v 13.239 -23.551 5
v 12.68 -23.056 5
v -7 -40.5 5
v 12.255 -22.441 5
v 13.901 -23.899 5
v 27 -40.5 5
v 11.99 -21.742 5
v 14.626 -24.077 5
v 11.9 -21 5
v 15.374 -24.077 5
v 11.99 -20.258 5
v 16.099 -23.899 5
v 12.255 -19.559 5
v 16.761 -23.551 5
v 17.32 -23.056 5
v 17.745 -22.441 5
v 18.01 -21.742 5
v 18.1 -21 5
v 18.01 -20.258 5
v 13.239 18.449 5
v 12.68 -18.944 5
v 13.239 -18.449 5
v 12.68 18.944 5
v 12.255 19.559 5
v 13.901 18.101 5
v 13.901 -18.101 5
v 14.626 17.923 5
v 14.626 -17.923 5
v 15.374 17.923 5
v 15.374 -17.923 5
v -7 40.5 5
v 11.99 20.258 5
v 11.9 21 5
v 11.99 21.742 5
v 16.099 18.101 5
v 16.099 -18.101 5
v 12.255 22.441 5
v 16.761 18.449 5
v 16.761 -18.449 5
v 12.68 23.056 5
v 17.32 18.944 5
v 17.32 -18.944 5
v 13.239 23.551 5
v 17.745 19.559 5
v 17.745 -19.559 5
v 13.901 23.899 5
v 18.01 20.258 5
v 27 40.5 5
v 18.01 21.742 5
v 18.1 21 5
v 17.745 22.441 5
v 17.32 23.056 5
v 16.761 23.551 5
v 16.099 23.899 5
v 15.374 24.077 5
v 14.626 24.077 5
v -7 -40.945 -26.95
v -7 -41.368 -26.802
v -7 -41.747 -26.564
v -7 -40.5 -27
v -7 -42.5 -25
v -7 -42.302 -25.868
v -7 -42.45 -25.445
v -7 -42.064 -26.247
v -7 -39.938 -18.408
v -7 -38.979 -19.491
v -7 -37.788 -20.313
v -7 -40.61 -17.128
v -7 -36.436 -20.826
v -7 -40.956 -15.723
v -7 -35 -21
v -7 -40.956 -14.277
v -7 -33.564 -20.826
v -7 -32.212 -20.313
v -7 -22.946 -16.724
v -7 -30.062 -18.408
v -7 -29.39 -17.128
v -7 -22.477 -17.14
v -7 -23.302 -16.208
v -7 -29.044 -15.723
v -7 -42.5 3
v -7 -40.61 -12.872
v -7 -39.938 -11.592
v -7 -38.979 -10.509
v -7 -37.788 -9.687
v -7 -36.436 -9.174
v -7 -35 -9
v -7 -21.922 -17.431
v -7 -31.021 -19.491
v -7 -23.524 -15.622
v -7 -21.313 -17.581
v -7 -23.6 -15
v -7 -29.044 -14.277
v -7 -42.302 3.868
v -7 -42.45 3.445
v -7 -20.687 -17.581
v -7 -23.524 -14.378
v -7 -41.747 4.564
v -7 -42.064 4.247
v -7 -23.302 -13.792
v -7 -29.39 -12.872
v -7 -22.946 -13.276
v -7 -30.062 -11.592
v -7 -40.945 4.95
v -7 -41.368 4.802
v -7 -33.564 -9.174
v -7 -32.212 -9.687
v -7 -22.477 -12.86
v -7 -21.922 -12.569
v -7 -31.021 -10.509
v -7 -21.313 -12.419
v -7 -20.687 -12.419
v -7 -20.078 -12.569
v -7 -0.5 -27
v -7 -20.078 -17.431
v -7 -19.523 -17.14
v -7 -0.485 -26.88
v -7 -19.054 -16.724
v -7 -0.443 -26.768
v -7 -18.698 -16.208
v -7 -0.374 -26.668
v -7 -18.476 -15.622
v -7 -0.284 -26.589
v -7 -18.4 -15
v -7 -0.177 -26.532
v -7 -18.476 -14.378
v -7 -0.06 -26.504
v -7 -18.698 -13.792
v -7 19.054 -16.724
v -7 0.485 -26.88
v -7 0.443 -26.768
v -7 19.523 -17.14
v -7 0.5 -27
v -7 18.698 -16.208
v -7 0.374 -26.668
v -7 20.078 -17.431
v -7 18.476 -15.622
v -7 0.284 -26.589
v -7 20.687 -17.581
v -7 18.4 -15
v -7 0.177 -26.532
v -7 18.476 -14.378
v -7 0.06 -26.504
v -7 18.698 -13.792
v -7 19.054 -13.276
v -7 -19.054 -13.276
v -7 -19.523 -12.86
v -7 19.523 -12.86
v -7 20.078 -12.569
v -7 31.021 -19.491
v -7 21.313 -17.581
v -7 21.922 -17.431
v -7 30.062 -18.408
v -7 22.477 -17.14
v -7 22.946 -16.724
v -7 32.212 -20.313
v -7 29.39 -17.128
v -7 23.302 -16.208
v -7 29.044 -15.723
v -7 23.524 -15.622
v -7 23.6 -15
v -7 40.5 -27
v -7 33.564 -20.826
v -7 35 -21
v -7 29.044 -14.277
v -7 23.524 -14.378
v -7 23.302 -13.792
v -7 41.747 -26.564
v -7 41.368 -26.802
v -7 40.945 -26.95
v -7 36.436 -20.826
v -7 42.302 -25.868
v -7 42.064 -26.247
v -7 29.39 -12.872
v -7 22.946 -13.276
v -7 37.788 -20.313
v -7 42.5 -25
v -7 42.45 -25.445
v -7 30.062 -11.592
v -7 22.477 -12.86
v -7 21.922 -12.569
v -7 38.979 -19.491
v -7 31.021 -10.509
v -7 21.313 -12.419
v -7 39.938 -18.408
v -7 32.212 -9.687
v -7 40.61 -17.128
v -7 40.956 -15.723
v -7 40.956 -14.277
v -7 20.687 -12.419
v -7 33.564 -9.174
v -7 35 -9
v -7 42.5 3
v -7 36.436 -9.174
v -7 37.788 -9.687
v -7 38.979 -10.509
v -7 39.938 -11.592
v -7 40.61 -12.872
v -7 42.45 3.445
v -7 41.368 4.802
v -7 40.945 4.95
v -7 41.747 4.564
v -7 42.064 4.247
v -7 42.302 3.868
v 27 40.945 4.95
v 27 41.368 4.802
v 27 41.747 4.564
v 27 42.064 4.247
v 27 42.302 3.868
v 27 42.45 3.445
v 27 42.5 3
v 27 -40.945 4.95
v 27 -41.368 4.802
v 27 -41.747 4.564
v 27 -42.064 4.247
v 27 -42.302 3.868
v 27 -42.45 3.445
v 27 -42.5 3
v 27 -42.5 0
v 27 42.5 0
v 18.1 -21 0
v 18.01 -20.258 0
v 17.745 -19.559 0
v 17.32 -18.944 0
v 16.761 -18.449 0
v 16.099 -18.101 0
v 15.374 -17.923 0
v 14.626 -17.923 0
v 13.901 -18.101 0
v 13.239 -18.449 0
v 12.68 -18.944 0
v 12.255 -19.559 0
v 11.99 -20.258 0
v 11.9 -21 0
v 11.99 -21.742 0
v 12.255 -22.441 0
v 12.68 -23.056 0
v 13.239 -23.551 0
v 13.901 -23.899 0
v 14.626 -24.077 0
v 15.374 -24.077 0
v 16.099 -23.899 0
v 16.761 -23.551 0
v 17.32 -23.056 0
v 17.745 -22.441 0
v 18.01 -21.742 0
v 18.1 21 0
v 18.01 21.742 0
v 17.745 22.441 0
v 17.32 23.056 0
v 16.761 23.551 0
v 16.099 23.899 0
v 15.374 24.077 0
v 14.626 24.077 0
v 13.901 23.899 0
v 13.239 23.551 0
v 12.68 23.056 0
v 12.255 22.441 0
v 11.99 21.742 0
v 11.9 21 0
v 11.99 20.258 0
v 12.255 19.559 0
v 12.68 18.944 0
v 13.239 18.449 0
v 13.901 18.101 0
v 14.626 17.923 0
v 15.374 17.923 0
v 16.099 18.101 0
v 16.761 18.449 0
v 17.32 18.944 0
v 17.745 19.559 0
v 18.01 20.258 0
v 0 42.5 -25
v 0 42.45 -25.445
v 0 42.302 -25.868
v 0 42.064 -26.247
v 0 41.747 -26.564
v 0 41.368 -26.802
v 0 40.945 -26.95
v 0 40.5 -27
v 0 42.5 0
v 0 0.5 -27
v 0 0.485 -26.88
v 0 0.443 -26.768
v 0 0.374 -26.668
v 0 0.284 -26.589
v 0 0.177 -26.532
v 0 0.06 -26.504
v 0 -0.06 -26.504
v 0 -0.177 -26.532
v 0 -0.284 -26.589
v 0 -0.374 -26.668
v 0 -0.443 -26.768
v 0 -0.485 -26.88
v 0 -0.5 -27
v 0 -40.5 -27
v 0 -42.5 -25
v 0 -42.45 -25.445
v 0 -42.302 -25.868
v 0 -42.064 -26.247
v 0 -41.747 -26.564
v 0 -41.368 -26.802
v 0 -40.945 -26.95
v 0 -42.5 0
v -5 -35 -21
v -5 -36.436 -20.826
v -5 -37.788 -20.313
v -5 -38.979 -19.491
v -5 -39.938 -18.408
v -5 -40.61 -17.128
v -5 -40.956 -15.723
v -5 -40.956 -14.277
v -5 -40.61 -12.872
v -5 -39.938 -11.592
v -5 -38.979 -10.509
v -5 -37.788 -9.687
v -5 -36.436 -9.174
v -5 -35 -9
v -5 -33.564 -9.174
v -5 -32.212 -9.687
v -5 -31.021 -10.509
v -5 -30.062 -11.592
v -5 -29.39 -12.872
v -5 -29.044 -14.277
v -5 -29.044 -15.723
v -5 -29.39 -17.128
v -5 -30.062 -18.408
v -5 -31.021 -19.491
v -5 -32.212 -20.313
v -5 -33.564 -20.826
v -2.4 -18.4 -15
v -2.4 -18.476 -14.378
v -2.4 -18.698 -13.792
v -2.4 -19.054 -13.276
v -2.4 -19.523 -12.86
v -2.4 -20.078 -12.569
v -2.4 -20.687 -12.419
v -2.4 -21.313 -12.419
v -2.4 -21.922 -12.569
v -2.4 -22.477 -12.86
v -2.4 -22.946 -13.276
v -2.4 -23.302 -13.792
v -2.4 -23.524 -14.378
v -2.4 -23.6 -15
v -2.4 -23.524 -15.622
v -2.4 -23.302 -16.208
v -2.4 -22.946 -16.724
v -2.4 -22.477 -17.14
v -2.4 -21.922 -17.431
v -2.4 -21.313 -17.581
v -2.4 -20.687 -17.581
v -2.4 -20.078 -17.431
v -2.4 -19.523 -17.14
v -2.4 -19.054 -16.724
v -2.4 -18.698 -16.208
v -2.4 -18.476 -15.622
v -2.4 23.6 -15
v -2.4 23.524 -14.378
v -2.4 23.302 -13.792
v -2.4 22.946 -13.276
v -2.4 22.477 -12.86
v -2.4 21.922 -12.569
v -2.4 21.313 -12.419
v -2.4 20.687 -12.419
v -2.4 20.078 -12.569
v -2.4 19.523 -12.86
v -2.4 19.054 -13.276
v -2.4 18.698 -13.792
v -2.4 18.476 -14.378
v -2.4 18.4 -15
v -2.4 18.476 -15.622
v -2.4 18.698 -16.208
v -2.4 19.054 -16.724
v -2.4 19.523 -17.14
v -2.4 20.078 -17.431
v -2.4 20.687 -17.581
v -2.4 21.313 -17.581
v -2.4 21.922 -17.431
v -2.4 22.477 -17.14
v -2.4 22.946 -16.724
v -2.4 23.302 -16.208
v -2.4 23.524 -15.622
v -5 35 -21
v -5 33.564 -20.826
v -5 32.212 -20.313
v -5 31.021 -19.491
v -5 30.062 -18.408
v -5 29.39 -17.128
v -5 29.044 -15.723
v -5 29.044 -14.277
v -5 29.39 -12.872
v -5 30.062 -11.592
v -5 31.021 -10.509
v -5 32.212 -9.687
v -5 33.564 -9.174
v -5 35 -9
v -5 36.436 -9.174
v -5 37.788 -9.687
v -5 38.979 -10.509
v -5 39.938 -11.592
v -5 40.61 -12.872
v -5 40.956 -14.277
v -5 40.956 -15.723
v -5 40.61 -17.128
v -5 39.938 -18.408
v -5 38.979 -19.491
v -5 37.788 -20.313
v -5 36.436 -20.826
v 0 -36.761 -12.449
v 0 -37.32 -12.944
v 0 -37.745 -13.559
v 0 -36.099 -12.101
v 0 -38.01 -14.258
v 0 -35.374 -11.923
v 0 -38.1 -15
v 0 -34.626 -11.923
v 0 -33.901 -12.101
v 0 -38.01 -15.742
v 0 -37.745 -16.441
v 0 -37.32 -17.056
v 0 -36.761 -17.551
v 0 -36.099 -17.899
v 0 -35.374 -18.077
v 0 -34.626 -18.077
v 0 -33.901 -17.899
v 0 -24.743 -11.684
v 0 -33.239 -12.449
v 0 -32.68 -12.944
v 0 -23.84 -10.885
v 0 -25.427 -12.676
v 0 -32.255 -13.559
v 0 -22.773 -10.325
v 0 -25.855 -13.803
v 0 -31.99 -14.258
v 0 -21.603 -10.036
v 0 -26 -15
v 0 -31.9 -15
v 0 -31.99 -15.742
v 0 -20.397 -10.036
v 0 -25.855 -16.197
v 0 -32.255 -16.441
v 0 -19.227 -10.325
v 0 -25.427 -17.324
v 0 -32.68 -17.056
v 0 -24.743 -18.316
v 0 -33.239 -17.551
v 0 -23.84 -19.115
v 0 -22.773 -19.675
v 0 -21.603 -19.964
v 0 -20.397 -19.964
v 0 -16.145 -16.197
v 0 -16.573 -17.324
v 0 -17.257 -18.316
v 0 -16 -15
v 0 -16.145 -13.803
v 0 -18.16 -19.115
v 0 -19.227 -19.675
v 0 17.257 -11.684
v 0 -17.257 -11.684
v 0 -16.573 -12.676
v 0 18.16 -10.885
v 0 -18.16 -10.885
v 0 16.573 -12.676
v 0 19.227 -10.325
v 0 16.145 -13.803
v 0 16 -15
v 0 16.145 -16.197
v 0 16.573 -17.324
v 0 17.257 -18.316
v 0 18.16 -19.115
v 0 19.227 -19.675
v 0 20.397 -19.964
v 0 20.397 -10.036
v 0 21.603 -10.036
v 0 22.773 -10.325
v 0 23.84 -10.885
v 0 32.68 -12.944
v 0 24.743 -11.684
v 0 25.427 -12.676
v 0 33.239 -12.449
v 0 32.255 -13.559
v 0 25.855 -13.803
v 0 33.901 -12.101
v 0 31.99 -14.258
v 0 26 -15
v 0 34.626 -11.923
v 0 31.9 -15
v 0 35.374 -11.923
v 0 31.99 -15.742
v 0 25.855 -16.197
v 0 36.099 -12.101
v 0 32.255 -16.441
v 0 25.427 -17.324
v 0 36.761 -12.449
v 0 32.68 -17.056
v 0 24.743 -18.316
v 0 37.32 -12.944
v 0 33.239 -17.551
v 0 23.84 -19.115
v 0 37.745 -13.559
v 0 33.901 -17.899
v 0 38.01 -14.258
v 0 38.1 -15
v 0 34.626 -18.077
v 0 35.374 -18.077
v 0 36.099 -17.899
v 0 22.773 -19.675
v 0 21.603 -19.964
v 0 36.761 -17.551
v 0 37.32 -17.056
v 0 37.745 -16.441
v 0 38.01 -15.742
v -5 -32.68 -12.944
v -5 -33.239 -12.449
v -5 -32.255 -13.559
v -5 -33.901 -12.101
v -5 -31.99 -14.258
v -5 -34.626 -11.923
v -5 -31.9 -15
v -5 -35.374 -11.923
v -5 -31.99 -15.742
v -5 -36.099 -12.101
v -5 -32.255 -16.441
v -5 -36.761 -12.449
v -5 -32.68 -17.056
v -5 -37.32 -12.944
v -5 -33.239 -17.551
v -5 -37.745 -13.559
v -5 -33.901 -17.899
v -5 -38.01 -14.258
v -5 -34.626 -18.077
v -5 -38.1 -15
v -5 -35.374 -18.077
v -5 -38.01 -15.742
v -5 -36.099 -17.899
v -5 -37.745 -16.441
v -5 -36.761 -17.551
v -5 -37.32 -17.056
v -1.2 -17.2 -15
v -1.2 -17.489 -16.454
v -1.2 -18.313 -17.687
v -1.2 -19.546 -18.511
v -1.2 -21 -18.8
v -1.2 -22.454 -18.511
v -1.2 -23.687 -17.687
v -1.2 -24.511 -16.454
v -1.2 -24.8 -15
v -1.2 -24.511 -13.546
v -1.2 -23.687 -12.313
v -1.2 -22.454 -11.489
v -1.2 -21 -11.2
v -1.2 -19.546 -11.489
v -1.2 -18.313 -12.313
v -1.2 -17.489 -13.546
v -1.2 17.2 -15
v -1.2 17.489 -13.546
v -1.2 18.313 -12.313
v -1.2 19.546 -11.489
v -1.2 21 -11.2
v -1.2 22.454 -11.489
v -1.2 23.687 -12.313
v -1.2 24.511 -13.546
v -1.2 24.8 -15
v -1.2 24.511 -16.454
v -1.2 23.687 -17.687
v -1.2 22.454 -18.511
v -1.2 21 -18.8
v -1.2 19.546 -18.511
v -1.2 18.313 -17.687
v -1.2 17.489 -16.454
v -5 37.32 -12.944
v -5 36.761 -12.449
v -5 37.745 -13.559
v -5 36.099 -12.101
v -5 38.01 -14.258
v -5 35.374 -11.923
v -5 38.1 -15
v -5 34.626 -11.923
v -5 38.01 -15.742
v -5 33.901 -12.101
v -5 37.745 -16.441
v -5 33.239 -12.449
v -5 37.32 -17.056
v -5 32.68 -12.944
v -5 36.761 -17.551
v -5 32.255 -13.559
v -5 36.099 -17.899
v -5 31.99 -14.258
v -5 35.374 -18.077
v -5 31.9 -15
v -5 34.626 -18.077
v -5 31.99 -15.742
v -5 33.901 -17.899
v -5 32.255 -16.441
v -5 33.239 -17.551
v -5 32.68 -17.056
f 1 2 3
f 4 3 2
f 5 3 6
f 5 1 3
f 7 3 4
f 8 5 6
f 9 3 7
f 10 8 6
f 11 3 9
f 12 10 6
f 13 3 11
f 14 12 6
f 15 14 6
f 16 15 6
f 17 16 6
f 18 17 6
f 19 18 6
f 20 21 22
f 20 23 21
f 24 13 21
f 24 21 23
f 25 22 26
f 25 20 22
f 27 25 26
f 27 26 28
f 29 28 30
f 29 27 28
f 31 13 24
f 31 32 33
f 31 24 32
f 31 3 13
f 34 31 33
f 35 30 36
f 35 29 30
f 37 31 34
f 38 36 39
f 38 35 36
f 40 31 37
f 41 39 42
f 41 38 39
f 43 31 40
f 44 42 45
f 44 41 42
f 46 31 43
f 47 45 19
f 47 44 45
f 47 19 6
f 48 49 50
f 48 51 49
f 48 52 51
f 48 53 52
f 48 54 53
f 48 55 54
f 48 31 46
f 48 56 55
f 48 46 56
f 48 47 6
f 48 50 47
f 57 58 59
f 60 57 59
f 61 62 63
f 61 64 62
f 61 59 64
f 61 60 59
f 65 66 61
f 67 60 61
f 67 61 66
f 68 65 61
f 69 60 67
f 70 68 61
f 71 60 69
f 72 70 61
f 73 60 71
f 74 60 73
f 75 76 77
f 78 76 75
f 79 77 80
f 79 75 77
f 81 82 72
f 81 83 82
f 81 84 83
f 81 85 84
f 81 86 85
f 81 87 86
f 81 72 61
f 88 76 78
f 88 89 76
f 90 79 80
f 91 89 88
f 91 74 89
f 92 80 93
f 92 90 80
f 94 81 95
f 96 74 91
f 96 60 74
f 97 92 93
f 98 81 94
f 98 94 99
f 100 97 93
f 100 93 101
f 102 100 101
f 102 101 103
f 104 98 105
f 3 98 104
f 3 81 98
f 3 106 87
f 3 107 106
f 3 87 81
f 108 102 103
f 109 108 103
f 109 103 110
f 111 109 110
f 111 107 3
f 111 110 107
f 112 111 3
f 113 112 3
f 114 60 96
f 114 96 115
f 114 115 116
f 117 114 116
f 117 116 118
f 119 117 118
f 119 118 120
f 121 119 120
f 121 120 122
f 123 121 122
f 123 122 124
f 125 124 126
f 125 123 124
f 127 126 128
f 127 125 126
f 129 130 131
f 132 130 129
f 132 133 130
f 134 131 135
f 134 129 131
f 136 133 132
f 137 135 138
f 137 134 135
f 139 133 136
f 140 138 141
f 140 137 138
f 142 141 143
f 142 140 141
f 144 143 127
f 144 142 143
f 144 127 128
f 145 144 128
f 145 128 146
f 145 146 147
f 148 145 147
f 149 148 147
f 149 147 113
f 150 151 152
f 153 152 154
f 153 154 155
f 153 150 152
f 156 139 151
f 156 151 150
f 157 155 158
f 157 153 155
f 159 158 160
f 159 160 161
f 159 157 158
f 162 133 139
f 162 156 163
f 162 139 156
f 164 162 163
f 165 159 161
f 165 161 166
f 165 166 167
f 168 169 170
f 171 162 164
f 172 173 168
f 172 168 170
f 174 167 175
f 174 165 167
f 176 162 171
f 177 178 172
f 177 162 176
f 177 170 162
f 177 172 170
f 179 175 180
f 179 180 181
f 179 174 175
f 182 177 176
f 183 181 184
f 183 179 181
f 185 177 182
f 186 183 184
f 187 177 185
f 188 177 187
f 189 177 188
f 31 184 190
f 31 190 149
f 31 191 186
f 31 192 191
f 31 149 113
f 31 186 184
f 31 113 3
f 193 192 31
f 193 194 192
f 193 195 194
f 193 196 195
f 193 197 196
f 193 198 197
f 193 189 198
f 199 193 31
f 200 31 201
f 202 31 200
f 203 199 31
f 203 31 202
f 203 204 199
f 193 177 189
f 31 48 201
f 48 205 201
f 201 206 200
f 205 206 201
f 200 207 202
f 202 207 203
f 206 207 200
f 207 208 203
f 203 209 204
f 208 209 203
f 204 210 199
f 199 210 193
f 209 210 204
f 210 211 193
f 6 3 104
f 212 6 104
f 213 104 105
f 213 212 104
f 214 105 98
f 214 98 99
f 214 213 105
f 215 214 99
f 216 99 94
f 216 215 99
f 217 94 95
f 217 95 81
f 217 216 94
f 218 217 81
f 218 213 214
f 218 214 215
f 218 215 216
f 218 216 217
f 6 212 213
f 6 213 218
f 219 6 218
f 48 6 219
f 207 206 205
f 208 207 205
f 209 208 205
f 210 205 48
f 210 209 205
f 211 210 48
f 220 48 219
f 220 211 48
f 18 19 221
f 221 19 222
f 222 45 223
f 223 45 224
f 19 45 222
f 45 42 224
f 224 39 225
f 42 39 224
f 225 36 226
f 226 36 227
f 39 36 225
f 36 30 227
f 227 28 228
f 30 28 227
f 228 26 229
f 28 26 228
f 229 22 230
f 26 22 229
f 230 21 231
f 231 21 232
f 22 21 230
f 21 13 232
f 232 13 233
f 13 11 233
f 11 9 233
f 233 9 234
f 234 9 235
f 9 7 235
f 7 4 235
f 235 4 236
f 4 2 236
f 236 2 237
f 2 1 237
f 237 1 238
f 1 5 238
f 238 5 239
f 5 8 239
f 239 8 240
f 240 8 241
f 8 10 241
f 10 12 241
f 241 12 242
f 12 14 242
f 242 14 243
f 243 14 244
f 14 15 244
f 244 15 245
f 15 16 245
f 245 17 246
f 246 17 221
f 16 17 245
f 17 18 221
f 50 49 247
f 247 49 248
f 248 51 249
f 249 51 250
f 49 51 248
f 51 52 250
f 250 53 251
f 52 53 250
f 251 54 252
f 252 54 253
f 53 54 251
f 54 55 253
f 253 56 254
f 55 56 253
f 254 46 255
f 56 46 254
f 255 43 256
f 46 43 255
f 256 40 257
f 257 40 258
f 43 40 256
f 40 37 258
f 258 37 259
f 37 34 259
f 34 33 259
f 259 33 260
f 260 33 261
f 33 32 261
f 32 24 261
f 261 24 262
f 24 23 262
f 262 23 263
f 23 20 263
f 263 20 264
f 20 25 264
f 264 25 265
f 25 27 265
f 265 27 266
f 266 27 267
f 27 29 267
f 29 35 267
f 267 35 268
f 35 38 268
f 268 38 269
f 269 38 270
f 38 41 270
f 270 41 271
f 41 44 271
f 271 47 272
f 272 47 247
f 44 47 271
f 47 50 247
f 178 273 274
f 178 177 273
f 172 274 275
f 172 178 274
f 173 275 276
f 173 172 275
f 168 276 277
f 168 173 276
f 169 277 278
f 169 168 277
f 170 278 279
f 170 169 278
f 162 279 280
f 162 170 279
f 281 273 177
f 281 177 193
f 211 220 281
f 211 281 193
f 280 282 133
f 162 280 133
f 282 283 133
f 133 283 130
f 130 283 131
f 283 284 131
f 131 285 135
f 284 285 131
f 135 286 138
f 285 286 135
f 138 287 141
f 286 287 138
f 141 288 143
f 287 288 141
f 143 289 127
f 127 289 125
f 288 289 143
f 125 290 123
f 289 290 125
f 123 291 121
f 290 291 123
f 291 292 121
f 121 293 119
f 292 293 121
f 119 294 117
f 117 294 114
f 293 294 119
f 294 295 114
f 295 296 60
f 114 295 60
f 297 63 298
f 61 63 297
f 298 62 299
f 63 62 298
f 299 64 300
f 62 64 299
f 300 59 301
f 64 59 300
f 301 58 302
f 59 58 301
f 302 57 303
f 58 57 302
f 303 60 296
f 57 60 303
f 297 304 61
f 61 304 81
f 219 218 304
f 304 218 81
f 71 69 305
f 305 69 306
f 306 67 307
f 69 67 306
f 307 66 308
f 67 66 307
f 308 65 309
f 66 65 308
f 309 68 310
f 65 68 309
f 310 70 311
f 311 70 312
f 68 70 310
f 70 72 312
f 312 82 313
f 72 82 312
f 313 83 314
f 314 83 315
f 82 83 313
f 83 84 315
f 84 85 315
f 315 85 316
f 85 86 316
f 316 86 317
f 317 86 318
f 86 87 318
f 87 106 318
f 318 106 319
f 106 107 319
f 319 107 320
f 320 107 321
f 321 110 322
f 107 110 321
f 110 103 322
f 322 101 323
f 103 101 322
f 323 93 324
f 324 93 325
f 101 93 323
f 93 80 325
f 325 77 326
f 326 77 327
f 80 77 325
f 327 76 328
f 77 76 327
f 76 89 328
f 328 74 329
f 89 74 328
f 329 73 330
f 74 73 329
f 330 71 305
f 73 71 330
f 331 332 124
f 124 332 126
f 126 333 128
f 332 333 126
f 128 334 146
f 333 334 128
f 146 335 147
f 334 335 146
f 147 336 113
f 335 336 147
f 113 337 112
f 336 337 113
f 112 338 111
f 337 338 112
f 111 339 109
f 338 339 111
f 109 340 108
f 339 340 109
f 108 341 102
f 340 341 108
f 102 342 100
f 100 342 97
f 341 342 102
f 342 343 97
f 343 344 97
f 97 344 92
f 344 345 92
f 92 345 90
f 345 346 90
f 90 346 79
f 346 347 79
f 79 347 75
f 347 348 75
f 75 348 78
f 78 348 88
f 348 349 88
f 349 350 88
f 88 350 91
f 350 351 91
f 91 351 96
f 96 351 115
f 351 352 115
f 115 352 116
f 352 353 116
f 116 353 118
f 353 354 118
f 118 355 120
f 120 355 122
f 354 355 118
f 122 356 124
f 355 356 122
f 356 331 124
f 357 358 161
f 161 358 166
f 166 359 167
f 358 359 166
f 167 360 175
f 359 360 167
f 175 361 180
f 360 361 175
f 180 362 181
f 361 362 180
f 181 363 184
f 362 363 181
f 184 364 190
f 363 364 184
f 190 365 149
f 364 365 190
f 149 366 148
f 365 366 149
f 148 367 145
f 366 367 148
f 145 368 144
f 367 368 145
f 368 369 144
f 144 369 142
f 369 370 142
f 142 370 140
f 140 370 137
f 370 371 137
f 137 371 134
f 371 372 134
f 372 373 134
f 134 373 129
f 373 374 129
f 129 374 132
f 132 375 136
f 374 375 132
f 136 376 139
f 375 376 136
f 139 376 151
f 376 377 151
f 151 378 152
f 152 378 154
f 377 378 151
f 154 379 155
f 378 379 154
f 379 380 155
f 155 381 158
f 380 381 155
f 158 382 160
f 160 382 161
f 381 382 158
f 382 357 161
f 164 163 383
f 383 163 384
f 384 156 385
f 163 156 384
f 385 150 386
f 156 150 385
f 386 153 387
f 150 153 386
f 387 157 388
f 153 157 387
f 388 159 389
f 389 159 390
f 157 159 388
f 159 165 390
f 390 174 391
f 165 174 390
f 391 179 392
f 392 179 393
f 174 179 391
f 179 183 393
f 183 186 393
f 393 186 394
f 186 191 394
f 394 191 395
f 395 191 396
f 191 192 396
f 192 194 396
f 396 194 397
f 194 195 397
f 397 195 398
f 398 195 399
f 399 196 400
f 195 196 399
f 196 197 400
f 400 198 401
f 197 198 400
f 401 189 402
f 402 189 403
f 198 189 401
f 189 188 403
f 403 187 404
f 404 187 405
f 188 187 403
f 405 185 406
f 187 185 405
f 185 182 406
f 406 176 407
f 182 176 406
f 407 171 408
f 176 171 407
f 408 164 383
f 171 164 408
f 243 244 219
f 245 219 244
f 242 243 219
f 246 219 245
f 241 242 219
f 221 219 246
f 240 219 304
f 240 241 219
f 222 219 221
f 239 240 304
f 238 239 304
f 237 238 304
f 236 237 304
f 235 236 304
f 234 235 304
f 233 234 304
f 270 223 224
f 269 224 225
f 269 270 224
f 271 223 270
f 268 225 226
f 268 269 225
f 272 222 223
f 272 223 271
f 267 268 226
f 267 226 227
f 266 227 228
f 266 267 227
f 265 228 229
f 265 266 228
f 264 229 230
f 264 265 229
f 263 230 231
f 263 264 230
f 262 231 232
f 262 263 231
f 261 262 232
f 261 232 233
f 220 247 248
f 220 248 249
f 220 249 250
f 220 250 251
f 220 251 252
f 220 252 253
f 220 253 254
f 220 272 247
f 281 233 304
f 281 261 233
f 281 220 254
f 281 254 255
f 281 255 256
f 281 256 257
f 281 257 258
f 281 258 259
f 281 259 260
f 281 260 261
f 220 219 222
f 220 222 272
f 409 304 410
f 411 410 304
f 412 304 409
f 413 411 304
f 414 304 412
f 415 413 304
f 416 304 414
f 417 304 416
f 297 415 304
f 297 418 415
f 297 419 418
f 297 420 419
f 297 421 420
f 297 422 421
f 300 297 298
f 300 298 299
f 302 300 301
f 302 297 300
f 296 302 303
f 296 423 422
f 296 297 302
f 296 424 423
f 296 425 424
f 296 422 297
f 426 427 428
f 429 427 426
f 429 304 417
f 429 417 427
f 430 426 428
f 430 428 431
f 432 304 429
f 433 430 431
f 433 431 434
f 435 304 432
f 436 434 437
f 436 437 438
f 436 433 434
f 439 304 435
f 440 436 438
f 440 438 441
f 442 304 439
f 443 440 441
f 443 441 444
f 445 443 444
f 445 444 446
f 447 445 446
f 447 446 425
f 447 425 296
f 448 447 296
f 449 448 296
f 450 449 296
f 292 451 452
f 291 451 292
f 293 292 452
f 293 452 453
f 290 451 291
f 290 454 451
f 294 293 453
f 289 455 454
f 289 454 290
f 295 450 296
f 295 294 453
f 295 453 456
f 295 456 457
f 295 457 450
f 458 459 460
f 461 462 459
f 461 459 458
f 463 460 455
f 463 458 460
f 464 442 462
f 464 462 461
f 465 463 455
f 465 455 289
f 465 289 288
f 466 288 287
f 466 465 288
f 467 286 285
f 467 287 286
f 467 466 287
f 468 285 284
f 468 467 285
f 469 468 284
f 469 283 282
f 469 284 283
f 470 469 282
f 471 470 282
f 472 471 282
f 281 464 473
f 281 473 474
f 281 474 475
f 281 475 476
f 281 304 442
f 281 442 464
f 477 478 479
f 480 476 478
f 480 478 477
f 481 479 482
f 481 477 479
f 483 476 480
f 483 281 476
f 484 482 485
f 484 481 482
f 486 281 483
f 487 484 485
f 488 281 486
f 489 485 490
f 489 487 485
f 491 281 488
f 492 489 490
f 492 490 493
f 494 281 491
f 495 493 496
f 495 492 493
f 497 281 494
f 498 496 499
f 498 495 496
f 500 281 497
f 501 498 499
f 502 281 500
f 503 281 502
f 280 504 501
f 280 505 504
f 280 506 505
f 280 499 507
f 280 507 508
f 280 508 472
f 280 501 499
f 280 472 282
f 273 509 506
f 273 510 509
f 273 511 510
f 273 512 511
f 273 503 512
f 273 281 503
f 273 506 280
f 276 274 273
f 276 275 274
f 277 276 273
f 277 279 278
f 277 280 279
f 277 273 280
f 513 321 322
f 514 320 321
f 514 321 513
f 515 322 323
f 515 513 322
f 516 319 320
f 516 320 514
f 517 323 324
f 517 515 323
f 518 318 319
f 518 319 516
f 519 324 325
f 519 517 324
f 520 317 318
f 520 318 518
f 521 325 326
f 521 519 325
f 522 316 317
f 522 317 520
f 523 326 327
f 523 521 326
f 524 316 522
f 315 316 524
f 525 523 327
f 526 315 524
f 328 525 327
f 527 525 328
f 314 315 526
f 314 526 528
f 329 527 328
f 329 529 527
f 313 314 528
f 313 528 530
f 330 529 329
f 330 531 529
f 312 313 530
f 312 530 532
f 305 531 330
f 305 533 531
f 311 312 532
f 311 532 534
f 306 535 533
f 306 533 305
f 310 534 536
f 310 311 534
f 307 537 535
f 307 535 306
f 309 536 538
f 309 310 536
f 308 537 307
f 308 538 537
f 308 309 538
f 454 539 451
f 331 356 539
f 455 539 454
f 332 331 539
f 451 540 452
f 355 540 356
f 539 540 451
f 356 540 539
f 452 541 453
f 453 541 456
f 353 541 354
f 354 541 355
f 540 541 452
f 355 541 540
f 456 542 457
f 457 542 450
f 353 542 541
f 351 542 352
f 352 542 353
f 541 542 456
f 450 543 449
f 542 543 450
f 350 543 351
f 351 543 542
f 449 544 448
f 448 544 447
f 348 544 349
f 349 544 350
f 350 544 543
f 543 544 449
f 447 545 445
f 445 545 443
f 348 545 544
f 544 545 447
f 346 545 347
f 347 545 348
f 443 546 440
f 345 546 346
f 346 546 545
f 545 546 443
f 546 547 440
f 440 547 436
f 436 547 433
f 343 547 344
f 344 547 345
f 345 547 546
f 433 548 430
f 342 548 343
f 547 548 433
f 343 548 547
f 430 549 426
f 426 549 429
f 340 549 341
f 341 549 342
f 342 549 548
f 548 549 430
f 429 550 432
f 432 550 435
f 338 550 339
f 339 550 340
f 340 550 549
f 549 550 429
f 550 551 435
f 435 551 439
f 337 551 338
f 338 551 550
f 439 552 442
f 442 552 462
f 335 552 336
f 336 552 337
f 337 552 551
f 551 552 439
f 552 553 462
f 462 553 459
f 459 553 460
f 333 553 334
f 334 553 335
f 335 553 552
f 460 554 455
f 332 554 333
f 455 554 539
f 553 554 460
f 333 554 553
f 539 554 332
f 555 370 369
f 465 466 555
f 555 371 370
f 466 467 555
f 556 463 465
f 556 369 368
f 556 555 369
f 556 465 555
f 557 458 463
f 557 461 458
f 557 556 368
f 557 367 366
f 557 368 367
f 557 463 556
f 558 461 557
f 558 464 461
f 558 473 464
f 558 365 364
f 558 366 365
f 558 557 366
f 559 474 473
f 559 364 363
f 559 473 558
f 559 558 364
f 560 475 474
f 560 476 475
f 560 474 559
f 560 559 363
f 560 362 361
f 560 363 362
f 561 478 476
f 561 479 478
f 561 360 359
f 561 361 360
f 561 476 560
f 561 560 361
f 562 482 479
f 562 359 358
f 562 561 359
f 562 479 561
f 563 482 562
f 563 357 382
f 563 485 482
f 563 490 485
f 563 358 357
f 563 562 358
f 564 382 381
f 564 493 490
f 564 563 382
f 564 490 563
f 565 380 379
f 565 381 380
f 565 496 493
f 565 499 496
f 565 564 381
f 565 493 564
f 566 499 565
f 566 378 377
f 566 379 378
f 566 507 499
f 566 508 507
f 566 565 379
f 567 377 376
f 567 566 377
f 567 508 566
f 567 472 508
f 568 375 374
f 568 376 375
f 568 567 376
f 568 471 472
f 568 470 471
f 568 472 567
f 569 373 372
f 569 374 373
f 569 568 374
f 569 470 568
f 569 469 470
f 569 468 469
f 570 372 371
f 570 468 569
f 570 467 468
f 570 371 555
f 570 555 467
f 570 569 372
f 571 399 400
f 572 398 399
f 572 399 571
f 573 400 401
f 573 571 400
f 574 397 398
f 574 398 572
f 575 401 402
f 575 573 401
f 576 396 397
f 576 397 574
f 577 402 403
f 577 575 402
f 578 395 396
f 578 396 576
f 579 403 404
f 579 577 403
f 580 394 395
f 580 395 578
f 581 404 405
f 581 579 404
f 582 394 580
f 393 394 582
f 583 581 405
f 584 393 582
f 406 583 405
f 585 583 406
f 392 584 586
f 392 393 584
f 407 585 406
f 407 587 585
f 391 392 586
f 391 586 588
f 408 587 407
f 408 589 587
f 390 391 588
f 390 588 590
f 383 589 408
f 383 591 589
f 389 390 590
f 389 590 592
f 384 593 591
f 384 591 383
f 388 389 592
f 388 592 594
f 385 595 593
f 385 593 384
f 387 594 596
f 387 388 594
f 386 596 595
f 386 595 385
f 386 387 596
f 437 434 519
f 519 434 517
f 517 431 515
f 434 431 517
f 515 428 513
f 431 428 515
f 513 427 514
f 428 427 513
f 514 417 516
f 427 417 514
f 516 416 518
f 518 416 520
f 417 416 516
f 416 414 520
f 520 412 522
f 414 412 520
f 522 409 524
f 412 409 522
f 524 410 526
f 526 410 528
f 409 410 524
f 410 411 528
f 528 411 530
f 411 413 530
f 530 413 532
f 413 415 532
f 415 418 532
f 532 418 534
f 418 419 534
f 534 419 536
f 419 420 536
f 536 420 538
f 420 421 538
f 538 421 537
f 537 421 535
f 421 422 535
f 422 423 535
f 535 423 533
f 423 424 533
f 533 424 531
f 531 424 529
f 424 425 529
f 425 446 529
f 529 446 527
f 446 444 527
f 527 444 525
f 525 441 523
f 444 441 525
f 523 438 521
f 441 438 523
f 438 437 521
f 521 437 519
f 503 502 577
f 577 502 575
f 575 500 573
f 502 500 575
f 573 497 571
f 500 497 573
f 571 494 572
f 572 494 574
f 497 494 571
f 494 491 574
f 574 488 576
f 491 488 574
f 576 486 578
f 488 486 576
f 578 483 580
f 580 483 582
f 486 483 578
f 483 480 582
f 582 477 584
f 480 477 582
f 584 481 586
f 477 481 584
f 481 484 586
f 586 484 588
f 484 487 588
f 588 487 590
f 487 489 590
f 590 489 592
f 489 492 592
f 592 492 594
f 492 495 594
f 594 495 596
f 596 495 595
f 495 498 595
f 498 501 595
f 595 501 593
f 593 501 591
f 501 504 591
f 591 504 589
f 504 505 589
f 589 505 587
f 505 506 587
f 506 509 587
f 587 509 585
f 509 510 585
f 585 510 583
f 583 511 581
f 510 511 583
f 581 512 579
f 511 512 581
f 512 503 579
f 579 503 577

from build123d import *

# Parameters (mm, degrees)
PAD_DEPTH            = 42.5
SKETCH001_R          = 3.1
POCKET_DEPTH         = 27.001
POCKET_DEPTH_BACK    = -5.001
SKETCH002_R          = 2.6
SKETCH002_R_2        = 3.1
POCKET001_DEPTH      = 7.001
FILLET_R             = 2
SKETCH005_R          = 0.5
POCKET002_DEPTH      = 7.001
POCKET002_DEPTH_BACK = -27.001
SKETCH006_R          = 6
POCKET003_DEPTH      = 2


with BuildPart() as part:
    # Sketch → Pad (new body, symmetric)
    with BuildSketch(Plane.XZ):
        Polygon((-7, 5), (27, 5), (27, 0), (0, 0), (0, -27), (-7, -27), align=None)
    extrude(amount=PAD_DEPTH, both=True)

    # Sketch001 → Pocket (cut, two sides)
    with BuildSketch(Plane.XY) as pocket_sk:
        with Locations((15, -21)):
            Circle(SKETCH001_R)
        with Locations((15, 21)):
            Circle(SKETCH001_R)
    extrude(amount=-POCKET_DEPTH, mode=Mode.SUBTRACT)
    extrude(pocket_sk.sketch, amount=-POCKET_DEPTH_BACK, mode=Mode.SUBTRACT)

    # Sketch002 → Pocket001 (cut, through all)
    with BuildSketch(Plane.YZ):
        with Locations((-21, -15)):
            Circle(SKETCH002_R)
        with Locations((21, -15)):
            Circle(SKETCH002_R)
        with Locations((-35, -15)):
            Circle(SKETCH002_R_2)
        with Locations((35, -15)):
            Circle(SKETCH002_R_2)
    extrude(amount=-POCKET001_DEPTH, mode=Mode.SUBTRACT)

    # Sketch003 (on DatumPlane) → Groove (revolve, cut)
    with BuildSketch(Plane.XY.offset(-15)):
        Polygon((0, 21), (-5, 21), (0, 16), align=None)
    revolve(axis=Axis((0, 21, -15), (1, 0, 0)), mode=Mode.SUBTRACT)

    # Sketch004 (on DatumPlane) → Groove001 (revolve, cut)
    with BuildSketch(Plane.XY.offset(-15)):
        Polygon((-5, -21), (0, -21), (0, -16), align=None)
    revolve(axis=Axis((0, -21, -15), (1, 0, 0)), mode=Mode.SUBTRACT)

    # Fillet
    fillet_edges = [part.edges().sort_by_distance(p)[0] for p in [
        (-3.5, -42.5, -27),
        (-3.5, 42.5, -27),
        (10, -42.5, 5),
        (10, 42.5, 5),
    ]]
    fillet(fillet_edges, radius=FILLET_R)

    # Sketch005 → Pocket002 (cut, two sides)
    with BuildSketch(Plane.YZ) as pocket002_sk:
        with Locations((0, -27)):
            Circle(SKETCH005_R)
    extrude(amount=-POCKET002_DEPTH, mode=Mode.SUBTRACT)
    extrude(pocket002_sk.sketch, amount=-POCKET002_DEPTH_BACK, mode=Mode.SUBTRACT)

    # Sketch006 (on Face2 of Pocket002) → Pocket003 (cut)
    with BuildSketch(Plane(origin=(-7, 0, 0), x_dir=(0, 0, -1), z_dir=(-1, 0, 0))):
        with Locations((15, 35)):
            Circle(SKETCH006_R)
        with Locations((15, -35)):
            Circle(SKETCH006_R)
    extrude(amount=-POCKET003_DEPTH, mode=Mode.SUBTRACT)


solid = part.part
